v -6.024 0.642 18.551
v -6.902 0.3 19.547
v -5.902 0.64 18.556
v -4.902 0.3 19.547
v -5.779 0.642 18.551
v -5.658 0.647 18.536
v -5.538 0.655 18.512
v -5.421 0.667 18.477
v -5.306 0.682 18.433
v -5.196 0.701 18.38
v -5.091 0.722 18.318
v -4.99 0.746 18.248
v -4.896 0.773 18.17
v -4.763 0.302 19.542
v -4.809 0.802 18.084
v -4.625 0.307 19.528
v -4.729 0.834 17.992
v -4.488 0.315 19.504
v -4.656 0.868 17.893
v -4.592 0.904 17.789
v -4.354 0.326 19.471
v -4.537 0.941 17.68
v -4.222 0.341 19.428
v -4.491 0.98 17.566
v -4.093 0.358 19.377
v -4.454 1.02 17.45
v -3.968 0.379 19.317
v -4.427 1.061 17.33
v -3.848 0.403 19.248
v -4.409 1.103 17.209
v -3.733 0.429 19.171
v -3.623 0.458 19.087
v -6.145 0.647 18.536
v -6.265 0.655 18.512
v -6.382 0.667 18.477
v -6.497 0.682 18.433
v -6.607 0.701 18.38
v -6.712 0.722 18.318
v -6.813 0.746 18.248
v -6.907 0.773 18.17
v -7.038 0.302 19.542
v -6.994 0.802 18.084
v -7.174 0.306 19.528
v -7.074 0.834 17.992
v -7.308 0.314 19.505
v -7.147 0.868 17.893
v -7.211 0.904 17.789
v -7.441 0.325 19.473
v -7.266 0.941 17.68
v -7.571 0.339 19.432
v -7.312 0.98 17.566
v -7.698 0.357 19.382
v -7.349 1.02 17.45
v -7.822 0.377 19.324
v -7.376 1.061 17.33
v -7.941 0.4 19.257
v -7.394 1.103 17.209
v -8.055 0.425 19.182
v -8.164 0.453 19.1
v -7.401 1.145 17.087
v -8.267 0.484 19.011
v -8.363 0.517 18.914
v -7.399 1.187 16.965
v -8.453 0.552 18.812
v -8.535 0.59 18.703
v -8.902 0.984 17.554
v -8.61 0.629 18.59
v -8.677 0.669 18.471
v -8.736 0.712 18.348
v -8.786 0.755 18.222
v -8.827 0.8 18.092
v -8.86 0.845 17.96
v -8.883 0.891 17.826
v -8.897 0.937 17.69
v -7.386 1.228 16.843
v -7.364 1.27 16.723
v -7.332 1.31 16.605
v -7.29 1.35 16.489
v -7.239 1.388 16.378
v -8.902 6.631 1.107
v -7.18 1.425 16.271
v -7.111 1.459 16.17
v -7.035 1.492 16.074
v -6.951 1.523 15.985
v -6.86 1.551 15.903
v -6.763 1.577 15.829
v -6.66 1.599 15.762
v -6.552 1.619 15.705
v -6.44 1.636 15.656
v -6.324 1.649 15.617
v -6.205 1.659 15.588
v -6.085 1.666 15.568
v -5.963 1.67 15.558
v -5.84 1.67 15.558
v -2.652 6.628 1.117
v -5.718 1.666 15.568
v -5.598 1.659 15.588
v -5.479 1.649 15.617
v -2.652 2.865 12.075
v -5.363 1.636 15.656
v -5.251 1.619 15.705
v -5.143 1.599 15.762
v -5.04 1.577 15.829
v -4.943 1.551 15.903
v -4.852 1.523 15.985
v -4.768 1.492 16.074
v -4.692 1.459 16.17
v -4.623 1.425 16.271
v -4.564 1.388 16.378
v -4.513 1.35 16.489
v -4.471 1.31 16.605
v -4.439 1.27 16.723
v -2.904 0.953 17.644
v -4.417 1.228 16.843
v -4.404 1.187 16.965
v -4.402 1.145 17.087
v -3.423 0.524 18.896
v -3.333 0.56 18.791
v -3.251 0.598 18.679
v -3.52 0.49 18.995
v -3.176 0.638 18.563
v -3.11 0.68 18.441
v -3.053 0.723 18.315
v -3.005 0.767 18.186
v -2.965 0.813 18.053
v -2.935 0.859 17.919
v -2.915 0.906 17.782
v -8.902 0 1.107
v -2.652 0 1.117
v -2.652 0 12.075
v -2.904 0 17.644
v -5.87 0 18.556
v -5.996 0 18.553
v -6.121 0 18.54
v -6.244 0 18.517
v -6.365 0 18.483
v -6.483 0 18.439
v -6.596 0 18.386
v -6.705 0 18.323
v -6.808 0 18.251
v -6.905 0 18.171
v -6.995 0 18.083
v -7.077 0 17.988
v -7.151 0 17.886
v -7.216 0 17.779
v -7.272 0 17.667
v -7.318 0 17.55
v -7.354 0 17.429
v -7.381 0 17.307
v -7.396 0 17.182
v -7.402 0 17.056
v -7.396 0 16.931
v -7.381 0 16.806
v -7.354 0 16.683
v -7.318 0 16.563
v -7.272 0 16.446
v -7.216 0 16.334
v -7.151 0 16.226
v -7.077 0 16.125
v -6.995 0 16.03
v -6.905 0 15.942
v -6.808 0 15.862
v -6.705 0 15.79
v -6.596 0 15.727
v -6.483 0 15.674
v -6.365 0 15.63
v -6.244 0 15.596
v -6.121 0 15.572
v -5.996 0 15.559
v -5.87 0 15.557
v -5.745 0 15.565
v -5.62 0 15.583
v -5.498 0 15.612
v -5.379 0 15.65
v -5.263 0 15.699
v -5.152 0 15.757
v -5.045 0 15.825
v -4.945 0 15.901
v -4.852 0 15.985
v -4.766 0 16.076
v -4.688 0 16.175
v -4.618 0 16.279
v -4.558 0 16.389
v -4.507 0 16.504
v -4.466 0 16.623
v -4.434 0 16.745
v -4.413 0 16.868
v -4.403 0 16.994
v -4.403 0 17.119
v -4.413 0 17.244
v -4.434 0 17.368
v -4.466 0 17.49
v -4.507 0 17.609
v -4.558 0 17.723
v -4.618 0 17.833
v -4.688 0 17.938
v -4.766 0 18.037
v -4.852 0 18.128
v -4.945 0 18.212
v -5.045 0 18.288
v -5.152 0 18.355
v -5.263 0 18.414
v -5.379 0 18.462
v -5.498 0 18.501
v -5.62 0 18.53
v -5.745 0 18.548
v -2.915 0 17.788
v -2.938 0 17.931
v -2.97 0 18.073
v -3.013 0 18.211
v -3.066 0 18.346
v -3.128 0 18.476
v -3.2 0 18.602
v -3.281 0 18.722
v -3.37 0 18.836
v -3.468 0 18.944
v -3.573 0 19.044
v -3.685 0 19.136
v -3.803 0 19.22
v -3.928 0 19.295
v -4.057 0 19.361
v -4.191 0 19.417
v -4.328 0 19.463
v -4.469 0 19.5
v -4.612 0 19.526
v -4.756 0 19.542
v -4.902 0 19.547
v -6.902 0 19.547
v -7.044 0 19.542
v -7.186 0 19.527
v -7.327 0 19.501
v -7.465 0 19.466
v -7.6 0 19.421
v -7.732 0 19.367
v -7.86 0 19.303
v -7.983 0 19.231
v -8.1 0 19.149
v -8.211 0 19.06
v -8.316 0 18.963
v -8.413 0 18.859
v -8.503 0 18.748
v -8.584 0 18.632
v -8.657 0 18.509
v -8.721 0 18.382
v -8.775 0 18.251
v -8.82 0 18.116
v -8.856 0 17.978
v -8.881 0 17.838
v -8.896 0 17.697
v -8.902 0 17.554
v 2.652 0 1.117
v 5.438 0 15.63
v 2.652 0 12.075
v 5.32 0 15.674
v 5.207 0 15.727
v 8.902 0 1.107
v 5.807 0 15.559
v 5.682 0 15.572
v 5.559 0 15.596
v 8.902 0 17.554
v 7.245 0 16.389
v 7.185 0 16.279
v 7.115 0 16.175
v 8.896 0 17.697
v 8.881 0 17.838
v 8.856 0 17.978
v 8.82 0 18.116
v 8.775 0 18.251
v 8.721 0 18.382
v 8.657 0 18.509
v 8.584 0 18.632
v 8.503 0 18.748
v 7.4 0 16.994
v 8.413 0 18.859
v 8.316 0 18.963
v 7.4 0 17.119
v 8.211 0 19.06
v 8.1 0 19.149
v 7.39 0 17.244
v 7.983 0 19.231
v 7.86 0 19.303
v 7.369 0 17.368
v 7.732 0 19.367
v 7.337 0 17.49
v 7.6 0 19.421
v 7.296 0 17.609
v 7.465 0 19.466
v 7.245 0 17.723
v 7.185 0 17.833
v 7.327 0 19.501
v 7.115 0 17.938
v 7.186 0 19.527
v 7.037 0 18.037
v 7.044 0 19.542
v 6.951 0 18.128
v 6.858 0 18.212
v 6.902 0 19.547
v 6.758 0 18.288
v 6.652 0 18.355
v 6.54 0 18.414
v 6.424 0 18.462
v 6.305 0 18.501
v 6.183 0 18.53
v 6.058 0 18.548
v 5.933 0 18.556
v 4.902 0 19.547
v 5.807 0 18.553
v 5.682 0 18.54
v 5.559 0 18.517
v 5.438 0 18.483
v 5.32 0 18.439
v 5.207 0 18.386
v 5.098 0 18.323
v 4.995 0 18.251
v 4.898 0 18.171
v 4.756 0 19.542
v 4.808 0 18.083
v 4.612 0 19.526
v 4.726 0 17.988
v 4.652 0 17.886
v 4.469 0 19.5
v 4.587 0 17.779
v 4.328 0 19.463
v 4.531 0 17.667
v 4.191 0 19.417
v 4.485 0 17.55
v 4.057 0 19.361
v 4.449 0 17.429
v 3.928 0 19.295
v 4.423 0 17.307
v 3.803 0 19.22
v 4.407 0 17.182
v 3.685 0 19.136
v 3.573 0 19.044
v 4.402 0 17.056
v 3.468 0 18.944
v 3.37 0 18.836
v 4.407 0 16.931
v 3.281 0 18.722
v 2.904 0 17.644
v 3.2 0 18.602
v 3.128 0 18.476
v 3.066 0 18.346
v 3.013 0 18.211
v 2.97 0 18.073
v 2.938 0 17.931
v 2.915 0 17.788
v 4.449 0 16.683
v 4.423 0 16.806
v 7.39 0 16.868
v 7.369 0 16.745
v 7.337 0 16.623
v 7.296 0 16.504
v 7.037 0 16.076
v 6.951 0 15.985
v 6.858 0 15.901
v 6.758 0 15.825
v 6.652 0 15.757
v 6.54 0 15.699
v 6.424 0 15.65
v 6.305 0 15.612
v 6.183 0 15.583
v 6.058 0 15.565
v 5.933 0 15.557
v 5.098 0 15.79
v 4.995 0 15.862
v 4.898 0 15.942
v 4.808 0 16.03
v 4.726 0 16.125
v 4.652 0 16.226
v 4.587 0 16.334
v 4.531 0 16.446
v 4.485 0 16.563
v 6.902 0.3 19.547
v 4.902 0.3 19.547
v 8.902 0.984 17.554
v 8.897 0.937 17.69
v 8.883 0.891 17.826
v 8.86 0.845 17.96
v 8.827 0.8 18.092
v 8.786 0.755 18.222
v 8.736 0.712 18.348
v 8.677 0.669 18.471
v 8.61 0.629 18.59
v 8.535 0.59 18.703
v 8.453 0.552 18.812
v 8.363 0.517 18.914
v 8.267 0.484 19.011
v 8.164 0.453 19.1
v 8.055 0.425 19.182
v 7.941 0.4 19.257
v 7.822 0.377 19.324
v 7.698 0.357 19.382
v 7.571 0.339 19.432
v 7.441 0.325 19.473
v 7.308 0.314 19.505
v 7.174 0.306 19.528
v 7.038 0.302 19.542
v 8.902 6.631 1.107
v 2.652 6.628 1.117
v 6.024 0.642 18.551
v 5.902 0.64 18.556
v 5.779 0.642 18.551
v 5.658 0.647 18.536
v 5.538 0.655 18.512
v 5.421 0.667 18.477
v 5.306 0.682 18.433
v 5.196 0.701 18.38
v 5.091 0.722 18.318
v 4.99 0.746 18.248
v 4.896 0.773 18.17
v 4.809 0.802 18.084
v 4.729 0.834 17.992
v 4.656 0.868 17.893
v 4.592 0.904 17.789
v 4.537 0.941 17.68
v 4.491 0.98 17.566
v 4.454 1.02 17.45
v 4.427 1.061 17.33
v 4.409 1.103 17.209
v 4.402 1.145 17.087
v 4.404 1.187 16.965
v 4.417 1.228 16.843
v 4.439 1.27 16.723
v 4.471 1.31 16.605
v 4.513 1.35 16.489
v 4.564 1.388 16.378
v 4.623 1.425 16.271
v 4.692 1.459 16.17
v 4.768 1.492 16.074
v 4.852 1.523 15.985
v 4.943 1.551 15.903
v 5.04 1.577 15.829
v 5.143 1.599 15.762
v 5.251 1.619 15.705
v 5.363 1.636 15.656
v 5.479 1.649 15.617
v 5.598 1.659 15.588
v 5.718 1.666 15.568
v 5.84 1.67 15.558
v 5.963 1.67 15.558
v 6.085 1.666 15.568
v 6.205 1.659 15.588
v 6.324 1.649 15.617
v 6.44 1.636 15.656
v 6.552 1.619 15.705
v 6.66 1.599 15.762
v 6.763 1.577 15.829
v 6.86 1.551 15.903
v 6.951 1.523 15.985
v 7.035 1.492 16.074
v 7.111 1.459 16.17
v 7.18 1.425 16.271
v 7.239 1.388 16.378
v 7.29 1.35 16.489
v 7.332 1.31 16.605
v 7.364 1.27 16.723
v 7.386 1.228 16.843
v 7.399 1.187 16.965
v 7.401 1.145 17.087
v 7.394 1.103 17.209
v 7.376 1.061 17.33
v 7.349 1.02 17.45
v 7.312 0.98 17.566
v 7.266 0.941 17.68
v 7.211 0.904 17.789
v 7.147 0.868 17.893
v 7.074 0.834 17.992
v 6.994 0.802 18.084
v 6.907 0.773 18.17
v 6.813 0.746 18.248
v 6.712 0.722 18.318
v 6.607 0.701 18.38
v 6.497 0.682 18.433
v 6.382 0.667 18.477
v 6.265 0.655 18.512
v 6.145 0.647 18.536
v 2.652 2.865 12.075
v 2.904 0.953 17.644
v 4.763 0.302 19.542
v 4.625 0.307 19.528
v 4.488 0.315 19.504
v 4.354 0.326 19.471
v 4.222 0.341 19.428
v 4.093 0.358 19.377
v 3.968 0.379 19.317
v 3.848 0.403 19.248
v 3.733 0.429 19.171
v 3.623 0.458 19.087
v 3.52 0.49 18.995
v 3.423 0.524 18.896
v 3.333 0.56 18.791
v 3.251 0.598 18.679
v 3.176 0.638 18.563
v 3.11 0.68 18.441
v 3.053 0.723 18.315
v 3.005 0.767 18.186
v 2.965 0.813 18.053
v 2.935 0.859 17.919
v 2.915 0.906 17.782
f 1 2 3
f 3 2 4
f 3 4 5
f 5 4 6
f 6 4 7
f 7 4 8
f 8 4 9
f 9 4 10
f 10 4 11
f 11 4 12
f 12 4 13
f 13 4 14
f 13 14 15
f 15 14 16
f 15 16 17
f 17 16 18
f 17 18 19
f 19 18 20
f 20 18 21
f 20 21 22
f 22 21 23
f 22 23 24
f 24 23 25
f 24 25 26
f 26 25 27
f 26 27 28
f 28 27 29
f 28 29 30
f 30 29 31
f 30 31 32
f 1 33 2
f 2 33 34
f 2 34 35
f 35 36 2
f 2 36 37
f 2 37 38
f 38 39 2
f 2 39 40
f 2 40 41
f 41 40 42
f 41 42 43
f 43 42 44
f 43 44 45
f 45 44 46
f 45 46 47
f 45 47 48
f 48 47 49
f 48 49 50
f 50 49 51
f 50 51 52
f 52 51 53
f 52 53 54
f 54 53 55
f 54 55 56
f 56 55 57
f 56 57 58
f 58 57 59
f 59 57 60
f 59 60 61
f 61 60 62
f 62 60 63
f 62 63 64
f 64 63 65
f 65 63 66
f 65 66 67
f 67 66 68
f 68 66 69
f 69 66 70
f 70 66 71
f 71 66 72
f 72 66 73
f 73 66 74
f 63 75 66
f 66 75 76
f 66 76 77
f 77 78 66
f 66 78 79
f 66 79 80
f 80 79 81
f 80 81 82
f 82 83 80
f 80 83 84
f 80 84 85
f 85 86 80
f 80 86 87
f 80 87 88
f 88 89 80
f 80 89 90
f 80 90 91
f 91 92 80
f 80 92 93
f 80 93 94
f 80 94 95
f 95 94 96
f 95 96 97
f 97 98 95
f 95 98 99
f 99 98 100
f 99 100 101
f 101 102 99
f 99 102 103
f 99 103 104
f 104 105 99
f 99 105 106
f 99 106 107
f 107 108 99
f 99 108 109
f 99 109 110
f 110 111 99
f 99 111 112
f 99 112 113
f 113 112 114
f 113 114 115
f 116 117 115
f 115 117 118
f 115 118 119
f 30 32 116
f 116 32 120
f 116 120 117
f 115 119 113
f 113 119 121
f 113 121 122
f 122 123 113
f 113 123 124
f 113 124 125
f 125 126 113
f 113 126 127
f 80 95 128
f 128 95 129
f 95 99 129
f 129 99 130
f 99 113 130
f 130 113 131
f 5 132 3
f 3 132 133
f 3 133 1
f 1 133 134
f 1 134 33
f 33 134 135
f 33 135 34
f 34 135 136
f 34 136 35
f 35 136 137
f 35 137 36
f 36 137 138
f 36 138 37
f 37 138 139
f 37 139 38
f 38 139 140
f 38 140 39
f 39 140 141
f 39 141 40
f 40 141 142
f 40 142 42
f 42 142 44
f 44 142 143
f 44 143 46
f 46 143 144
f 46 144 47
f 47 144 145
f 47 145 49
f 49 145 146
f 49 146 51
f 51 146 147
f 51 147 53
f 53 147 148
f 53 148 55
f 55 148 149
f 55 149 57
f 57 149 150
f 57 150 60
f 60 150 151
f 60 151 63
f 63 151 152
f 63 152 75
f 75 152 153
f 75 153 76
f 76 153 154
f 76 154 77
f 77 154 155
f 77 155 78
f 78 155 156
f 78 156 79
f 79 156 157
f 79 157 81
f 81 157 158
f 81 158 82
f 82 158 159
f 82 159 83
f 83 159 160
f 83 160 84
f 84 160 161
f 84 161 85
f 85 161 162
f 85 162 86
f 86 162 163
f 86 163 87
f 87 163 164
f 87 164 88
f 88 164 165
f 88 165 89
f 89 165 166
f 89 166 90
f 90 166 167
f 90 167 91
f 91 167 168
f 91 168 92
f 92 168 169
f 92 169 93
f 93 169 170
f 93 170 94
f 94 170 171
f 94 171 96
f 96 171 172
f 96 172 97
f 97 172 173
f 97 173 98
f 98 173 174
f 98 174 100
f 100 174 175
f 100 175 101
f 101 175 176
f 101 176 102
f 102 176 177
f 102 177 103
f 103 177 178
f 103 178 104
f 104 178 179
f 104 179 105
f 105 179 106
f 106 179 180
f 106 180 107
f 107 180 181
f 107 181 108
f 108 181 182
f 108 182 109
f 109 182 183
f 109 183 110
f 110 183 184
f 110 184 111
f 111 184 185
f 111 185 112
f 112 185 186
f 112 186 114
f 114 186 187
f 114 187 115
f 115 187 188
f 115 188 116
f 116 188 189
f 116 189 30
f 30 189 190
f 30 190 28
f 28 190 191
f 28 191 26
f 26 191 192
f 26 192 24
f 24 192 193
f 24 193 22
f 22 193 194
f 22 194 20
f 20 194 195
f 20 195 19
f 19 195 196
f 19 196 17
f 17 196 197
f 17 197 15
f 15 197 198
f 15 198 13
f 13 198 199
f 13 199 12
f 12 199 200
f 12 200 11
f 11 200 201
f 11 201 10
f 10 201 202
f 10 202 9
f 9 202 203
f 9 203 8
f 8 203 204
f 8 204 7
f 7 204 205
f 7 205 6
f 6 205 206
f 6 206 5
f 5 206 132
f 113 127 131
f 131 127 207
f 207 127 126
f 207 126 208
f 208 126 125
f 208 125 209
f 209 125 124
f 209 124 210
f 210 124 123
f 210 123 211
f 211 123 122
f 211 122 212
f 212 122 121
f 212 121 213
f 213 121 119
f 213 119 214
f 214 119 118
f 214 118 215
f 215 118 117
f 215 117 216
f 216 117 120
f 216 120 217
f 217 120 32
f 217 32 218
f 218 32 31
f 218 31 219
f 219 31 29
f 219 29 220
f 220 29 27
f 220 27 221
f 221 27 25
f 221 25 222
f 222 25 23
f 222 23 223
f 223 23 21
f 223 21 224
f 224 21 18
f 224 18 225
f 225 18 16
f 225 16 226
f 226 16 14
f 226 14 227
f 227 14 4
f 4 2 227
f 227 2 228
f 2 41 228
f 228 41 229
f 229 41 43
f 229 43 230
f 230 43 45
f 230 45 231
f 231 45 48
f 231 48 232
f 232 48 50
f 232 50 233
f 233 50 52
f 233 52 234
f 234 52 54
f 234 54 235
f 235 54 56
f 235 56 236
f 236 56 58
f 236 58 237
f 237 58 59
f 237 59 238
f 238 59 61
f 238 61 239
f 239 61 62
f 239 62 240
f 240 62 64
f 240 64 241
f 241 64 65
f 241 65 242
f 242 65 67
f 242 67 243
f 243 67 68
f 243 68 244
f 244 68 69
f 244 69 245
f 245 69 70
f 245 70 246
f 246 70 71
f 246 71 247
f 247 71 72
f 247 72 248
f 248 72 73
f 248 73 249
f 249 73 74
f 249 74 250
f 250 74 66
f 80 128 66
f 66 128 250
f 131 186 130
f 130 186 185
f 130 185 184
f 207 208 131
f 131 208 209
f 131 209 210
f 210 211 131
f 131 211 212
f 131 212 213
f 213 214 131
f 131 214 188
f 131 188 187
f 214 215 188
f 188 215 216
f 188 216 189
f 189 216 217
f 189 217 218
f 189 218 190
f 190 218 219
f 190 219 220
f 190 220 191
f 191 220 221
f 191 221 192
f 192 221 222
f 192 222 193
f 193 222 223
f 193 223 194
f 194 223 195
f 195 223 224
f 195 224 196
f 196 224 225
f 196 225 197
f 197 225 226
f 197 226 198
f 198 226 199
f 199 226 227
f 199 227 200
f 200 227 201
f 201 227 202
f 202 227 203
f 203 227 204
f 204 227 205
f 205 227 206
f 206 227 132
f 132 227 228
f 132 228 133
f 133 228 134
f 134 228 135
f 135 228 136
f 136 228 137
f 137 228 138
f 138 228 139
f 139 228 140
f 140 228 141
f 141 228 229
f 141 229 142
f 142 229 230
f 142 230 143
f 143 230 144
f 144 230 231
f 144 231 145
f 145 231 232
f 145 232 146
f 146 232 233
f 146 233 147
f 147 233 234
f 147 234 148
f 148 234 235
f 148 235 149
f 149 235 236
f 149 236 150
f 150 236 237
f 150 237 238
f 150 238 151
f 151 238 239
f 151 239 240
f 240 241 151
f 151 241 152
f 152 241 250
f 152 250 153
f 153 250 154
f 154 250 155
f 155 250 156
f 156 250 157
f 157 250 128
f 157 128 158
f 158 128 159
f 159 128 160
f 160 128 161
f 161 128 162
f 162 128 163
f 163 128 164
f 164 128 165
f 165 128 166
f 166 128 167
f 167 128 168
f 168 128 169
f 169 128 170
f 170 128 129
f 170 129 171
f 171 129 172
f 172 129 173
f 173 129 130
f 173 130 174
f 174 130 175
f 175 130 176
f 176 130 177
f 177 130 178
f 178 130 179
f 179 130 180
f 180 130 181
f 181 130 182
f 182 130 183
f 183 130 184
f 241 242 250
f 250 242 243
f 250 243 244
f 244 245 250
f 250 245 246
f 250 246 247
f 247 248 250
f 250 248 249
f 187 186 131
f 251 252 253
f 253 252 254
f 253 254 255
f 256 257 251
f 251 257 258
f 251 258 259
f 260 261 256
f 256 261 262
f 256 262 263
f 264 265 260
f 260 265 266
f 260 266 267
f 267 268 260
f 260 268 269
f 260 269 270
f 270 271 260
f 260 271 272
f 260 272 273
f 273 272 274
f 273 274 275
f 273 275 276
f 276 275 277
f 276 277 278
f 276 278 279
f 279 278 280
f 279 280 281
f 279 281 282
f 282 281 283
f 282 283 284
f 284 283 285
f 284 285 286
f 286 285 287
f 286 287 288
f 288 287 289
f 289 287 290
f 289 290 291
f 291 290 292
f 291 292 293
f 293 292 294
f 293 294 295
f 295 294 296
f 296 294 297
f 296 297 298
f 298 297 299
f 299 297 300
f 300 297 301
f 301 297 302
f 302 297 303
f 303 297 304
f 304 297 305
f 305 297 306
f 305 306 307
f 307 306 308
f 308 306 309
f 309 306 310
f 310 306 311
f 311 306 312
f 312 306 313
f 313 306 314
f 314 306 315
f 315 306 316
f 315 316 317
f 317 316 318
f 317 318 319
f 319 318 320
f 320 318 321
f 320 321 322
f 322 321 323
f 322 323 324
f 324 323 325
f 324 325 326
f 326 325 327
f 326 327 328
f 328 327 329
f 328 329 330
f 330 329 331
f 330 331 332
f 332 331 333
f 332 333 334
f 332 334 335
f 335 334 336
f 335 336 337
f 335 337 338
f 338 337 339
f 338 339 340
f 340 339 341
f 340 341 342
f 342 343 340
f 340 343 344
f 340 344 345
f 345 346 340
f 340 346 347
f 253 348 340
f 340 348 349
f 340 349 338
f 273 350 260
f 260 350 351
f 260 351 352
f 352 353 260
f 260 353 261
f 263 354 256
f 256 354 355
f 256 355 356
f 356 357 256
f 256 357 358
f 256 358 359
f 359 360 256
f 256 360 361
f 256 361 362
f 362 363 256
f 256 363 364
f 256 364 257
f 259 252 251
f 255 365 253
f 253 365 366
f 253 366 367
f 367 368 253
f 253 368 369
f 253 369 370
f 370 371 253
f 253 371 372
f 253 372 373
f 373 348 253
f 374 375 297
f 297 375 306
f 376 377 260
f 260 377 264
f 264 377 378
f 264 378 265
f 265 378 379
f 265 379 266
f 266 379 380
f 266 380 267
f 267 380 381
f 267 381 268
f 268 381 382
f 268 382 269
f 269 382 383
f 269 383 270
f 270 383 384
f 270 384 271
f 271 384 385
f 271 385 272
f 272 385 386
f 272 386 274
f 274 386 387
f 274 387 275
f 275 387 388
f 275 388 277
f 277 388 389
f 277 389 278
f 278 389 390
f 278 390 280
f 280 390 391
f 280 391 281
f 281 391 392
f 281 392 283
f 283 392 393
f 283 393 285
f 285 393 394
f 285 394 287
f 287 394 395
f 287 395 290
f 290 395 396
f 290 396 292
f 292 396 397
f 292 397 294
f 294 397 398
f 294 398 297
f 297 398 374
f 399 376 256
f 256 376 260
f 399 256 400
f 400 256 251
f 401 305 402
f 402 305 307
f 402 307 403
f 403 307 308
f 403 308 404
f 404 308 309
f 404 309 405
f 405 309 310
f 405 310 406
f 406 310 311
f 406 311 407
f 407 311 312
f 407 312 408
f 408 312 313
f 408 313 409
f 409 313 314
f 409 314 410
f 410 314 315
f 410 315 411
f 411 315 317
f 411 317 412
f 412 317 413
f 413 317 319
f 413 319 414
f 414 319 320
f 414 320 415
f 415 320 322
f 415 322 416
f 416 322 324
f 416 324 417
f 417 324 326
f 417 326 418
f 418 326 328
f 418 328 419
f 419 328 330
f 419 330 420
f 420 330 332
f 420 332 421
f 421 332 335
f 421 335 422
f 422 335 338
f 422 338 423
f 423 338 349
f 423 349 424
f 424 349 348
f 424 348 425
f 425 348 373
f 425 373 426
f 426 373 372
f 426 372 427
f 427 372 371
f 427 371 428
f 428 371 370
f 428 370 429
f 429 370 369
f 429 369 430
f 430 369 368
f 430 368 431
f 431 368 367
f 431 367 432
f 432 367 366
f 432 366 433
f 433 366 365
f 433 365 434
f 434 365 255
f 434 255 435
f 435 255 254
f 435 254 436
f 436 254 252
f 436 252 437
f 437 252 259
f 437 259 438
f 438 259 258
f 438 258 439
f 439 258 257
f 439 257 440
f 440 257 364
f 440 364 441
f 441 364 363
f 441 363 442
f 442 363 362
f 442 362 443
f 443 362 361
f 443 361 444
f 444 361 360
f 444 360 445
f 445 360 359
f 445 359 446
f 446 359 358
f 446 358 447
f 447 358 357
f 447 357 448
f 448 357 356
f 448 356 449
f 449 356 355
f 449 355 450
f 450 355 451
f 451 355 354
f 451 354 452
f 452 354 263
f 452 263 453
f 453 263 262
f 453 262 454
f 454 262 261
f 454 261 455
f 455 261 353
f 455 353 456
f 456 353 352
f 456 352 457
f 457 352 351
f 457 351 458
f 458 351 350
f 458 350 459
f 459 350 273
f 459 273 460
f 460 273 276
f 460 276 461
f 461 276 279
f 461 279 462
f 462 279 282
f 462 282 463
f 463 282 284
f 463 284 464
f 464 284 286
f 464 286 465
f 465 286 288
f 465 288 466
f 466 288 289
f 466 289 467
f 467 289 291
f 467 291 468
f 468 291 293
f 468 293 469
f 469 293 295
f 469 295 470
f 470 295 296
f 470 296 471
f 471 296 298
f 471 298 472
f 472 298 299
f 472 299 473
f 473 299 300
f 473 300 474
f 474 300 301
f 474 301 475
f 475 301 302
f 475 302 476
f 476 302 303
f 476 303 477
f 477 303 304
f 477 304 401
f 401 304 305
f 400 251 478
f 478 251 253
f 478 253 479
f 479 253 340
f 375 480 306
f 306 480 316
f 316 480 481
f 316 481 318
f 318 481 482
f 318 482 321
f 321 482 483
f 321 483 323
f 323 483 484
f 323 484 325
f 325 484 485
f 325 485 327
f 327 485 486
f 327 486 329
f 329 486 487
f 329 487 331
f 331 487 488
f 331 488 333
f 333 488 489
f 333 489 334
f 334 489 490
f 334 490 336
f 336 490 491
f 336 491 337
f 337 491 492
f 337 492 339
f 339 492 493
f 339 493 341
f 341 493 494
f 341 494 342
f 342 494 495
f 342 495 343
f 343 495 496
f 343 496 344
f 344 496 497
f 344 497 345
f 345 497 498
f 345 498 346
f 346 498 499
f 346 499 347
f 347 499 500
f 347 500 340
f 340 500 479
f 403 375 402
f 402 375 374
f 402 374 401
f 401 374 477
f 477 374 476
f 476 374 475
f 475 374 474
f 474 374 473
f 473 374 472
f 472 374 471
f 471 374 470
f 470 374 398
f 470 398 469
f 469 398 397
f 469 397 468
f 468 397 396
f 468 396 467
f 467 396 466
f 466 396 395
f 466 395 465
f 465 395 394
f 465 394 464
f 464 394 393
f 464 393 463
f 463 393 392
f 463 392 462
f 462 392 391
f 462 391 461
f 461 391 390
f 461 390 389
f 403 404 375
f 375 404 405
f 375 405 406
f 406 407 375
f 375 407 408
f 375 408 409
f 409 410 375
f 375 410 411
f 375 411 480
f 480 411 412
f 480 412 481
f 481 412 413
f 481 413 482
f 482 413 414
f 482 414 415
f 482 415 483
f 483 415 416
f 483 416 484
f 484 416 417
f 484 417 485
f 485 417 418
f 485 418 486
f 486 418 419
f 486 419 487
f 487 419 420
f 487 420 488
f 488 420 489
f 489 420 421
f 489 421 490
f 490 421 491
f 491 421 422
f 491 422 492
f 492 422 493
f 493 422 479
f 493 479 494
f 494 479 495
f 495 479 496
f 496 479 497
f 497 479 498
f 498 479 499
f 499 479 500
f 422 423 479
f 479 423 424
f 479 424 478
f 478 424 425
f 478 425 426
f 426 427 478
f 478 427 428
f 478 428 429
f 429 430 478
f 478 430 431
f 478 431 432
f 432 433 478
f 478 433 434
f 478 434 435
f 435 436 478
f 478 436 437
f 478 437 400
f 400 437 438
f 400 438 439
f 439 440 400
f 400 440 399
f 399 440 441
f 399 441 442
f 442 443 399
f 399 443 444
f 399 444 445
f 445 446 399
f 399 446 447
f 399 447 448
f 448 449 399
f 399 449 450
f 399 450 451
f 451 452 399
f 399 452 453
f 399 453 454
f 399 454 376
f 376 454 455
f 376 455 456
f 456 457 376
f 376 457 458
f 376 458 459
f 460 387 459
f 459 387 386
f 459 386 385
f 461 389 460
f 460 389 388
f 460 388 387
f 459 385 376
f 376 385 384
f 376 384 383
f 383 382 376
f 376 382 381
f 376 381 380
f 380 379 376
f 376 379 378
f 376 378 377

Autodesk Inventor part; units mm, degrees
ref_plane "YZ Plane" through (0, 0, 0) normal (1, 0, 0) x (0, 1, 0)
ref_plane "XZ Plane" through (0, 0, 0) normal (0, 1, 0) x (-1, 0, 0)
ref_plane "XY Plane" through (0, 0, 0) normal (0, 0, 1) x (1, 0, 0)
sketch "Sketch1" plane through (0, 0, 0) normal (0, 1, 0) x (-1, 0, 0)
  line L0 (-8.9015, 1.1073) -> (-8.9015, 17.5545)
  line L1 (-2.6515, 1.1073) -> (-8.9015, 1.1073)
  line L2 (-2.6515, 12.0754) -> (-2.6515, 1.1172)
  line L3 (-2.9035, 17.6442) -> (-2.6515, 12.0754)
  ellipse E0 centre (-4.9015, 17.5545) end of major axis (-2.9015, 17.5545) minor radius 1.9924 (-2.9035, 17.6442) -> (-4.9015, 19.5469) ccw
  line L4 (-6.9015, 19.5469) -> (-4.9015, 19.5469)
  ellipse E1 centre (-6.9015, 17.5545) end of major axis (-8.9015, 17.5545) minor radius 1.9924 (-6.9015, 19.5469) -> (-8.9015, 17.5545) ccw
  ellipse E2 centre (-5.9015, 17.0564) end of major axis (-4.4015, 17.0564) minor radius 1.4943
  line L5 (-8.9015, 1.1073) -> (-8.9015, 1.3688)
  line L6 (-8.9015, 1.1073) -> (-2.6515, 1.1172)
  line L7 (-2.6515, 1.1172) -> (-2.6515, 12.0754)
  line L8 (-2.6515, 12.0754) -> (-2.9035, 17.6442)
  line L9 (-8.9015, 1.1073) -> (-8.9015, 17.5545)
  line L10 (-6.9015, 19.5469) -> (-4.9015, 19.5469)
  circle A0 centre (-5.9015, 17.0564) radius 1.5
  line L11 (8.9015, 1.1073) -> (8.9015, 17.5545)
  line L12 (2.6515, 1.1073) -> (8.9015, 1.1073)
  line L13 (2.6515, 12.0754) -> (2.6515, 1.1172)
  line L14 (2.9035, 17.6442) -> (2.6515, 12.0754)
  ellipse E3 centre (4.9015, 17.5545) end of major axis (2.9015, 17.5545) minor radius 1.9924 (4.9015, 19.5469) -> (2.9035, 17.6442) ccw
  line L15 (6.9015, 19.5469) -> (4.9015, 19.5469)
  ellipse E4 centre (6.9015, 17.5545) end of major axis (8.9015, 17.5545) minor radius 1.9924 (8.9015, 17.5545) -> (6.9015, 19.5469) ccw
  ellipse E5 centre (5.9015, 17.0564) end of major axis (4.4015, 17.0564) minor radius 1.4943
  line L16 (8.9015, 1.1073) -> (8.9015, 1.3688)
  line L17 (8.9015, 1.1073) -> (2.6515, 1.1172)
  line L18 (2.6515, 1.1172) -> (2.6515, 12.0754)
  line L19 (2.6515, 12.0754) -> (2.9035, 17.6442)
  line L20 (8.9015, 1.1073) -> (8.9015, 17.5545)
  line L21 (6.9015, 19.5469) -> (4.9015, 19.5469)
  circle A1 centre (5.9015, 17.0564) radius 1.5
  point P0 (0, 0)
  point P1 (-18.0813, 13.3212)
extrude "Extrusion1" add sketch "Sketch1" along normal blind 10
sketch "Sketch2" plane through (8.9015, 0, 17.5545) normal (1, 0, 0) x (0, 0, -1)
  line L0 (16.4472, 6.631) -> (-1.9924, 0.3)
  line L1 (16.4472, 6.631) -> (16.4472, 13.2162)
  line L2 (16.4472, 13.2162) -> (-1.9924, 13.2162)
  line L3 (-1.9924, 13.2162) -> (-1.9924, 0.3)
  line L4 (0, 0) -> (-1.9924, 0) projected
  point P0 (17.5545, 0)
  point P1 (16.4472, 0)
  dimension "d5" = 6.631
  dimension "d8" = 0.3
extrude "Extrusion2" cut sketch "Sketch2" against normal through all
properties part number "20degree spacer"
